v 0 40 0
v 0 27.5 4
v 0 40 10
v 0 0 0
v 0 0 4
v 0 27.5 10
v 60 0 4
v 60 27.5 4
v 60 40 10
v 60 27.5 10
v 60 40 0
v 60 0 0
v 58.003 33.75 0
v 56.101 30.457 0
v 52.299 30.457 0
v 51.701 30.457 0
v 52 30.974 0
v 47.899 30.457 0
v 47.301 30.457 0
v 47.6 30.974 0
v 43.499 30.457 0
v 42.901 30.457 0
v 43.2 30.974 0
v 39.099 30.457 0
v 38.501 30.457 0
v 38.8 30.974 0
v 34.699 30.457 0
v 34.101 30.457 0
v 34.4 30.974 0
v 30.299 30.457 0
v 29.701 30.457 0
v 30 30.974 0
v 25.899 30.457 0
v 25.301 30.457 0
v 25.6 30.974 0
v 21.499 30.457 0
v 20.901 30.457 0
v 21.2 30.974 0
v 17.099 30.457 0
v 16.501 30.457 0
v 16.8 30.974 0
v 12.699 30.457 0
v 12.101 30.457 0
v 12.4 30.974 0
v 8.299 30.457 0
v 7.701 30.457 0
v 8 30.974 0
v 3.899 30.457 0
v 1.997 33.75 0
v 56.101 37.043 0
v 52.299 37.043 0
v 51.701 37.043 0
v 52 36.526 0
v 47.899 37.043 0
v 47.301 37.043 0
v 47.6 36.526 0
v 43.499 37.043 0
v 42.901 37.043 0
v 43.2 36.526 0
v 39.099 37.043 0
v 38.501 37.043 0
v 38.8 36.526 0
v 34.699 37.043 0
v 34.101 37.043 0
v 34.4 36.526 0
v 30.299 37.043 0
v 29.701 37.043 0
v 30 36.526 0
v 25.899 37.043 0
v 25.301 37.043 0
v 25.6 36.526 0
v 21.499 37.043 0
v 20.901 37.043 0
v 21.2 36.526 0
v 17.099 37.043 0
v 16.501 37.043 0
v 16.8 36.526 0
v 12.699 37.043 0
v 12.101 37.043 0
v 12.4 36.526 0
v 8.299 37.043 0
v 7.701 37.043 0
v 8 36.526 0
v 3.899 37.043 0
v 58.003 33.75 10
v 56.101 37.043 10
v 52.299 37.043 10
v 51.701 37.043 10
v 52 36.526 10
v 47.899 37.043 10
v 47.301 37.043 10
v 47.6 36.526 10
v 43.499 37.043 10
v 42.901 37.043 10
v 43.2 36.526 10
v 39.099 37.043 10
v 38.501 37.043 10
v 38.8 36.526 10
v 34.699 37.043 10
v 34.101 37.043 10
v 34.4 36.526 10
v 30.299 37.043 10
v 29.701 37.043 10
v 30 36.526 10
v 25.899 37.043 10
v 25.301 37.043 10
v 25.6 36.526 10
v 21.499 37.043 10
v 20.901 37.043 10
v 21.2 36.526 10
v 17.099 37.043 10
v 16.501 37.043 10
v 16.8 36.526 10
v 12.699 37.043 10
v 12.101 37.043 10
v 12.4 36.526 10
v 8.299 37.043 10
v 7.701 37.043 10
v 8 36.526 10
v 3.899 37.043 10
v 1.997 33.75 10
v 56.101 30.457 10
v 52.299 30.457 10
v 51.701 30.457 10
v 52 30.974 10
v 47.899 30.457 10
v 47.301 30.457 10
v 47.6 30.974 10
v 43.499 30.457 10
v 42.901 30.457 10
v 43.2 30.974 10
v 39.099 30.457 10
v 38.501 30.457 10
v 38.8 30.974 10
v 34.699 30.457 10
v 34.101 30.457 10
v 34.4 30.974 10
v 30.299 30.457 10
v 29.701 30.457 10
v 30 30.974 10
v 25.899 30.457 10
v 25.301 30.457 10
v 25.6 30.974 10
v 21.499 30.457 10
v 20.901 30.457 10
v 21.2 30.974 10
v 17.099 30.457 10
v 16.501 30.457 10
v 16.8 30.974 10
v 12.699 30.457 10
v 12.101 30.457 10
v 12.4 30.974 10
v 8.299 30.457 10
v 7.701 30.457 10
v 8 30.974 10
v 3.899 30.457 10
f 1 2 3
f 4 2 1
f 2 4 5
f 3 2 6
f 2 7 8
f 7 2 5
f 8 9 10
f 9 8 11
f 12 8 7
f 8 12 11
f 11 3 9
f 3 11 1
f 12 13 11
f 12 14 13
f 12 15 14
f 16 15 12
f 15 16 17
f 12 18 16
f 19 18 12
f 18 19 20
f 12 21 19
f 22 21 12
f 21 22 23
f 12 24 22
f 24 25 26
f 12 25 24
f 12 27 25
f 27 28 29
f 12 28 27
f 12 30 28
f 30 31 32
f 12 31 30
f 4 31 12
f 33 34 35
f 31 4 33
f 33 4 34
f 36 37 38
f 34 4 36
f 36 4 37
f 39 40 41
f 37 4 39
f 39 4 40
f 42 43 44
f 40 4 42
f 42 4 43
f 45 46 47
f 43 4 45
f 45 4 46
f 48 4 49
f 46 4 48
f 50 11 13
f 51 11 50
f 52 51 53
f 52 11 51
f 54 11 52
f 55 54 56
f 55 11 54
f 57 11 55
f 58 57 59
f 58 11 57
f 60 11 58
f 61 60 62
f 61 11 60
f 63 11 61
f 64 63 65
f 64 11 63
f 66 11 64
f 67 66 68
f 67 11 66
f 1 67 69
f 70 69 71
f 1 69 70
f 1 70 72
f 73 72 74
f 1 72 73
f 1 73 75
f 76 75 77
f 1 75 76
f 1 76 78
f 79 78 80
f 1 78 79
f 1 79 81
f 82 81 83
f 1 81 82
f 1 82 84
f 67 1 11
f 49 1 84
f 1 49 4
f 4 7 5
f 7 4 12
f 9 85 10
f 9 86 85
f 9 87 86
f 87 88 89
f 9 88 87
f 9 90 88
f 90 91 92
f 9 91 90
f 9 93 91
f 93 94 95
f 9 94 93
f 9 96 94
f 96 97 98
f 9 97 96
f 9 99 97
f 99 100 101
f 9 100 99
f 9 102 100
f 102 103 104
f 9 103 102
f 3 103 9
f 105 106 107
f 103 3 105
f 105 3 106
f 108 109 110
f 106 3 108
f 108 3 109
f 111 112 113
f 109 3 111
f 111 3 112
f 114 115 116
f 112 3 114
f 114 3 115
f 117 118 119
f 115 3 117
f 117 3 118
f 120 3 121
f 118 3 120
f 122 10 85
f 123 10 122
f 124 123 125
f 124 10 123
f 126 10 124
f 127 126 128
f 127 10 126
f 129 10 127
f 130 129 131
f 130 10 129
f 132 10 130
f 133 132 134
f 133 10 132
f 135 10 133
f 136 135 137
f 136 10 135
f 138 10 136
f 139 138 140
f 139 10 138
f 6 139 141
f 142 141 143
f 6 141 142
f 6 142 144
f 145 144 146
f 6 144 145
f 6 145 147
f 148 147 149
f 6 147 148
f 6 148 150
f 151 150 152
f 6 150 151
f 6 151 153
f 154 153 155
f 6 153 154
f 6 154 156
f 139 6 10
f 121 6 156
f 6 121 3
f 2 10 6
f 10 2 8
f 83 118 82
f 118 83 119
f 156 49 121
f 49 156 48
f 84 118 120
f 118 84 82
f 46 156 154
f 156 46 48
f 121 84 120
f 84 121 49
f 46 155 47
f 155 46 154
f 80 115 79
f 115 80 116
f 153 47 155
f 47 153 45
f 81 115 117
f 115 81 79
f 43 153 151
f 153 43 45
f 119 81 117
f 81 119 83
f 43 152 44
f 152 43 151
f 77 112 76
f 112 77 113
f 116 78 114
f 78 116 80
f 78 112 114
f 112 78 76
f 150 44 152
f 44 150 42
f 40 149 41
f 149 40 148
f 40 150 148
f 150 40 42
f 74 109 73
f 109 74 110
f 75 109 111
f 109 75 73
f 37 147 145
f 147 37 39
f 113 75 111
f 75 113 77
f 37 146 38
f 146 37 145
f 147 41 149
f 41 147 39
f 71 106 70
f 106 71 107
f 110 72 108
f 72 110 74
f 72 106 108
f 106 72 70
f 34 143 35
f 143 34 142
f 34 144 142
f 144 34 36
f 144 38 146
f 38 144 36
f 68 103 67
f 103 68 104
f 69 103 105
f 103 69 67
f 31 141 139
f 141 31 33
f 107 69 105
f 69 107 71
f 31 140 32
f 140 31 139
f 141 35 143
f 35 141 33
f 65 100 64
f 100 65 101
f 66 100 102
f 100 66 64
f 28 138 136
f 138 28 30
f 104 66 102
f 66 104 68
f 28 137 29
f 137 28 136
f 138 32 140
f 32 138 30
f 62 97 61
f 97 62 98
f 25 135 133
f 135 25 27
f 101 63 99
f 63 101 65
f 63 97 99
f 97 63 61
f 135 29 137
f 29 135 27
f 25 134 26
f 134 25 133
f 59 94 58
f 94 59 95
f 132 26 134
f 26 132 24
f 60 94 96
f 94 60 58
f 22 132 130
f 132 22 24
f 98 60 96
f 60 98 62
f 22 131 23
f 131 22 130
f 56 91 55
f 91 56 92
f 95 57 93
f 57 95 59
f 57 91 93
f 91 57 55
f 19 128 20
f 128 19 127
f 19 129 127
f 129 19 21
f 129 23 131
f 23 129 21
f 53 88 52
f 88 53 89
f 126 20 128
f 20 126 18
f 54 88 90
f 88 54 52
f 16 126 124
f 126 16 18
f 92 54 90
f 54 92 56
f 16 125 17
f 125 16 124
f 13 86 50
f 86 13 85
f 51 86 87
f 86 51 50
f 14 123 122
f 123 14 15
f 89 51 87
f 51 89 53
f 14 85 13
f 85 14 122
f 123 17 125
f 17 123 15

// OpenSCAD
/*
Engraving Letter Punch Gage

For haxagonal punch stamps
*/

// Height of punch stamp
stampHeight = 6.5;

// Width of a letter on the stamp
letterWidth = 4;

// Letter stretch factor (distance between stamps)
letterStretch = 1.1;

// Stamp play (space around the stamp to ease punching)
stampPlay = 0.1;

// Golabel dimensions
baseWidth = 60;
baseDepth = 40;
baseThickness = 4;

nPunchHoles = 12;

punchHolesOffset = 3;
gageThickness = 10;

// === INTERNALS ======================================

// -- compute stamp hexagonal diameter
stampDia = 2.0/sqrt(3)*stampHeight;

// -- compute gage dimensions
gageWidth = baseWidth;
gageDepth = stampHeight + 2*punchHolesOffset;
gageXpos = 0;
gageYpos = baseDepth - gageDepth;

letterStep = letterWidth * letterStretch;

holesXpos = gageXpos + (gageWidth - (nPunchHoles-1)*letterStep)/2;
holesYpos = gageYpos + gageDepth/2;

// === MAIN ===========================================

difference(){

    union(){
        cube([ baseWidth, baseDepth, baseThickness ]);
        translate([ gageXpos, gageYpos, 0 ]) 
            cube([ gageWidth, gageDepth, gageThickness ]);
    };

    union(){
        for( p = [1:nPunchHoles] )
            translate( [ holesXpos+(p-1)*letterStep, holesYpos, -1 ] ) {
                cylinder( h=gageThickness+2, d=stampDia+stampPlay, $fn=6 );
                //translate([-1,3.5,10.5]) linear_extrude(height=2) scale(0.3) text(str(p));
            };
    };
}
